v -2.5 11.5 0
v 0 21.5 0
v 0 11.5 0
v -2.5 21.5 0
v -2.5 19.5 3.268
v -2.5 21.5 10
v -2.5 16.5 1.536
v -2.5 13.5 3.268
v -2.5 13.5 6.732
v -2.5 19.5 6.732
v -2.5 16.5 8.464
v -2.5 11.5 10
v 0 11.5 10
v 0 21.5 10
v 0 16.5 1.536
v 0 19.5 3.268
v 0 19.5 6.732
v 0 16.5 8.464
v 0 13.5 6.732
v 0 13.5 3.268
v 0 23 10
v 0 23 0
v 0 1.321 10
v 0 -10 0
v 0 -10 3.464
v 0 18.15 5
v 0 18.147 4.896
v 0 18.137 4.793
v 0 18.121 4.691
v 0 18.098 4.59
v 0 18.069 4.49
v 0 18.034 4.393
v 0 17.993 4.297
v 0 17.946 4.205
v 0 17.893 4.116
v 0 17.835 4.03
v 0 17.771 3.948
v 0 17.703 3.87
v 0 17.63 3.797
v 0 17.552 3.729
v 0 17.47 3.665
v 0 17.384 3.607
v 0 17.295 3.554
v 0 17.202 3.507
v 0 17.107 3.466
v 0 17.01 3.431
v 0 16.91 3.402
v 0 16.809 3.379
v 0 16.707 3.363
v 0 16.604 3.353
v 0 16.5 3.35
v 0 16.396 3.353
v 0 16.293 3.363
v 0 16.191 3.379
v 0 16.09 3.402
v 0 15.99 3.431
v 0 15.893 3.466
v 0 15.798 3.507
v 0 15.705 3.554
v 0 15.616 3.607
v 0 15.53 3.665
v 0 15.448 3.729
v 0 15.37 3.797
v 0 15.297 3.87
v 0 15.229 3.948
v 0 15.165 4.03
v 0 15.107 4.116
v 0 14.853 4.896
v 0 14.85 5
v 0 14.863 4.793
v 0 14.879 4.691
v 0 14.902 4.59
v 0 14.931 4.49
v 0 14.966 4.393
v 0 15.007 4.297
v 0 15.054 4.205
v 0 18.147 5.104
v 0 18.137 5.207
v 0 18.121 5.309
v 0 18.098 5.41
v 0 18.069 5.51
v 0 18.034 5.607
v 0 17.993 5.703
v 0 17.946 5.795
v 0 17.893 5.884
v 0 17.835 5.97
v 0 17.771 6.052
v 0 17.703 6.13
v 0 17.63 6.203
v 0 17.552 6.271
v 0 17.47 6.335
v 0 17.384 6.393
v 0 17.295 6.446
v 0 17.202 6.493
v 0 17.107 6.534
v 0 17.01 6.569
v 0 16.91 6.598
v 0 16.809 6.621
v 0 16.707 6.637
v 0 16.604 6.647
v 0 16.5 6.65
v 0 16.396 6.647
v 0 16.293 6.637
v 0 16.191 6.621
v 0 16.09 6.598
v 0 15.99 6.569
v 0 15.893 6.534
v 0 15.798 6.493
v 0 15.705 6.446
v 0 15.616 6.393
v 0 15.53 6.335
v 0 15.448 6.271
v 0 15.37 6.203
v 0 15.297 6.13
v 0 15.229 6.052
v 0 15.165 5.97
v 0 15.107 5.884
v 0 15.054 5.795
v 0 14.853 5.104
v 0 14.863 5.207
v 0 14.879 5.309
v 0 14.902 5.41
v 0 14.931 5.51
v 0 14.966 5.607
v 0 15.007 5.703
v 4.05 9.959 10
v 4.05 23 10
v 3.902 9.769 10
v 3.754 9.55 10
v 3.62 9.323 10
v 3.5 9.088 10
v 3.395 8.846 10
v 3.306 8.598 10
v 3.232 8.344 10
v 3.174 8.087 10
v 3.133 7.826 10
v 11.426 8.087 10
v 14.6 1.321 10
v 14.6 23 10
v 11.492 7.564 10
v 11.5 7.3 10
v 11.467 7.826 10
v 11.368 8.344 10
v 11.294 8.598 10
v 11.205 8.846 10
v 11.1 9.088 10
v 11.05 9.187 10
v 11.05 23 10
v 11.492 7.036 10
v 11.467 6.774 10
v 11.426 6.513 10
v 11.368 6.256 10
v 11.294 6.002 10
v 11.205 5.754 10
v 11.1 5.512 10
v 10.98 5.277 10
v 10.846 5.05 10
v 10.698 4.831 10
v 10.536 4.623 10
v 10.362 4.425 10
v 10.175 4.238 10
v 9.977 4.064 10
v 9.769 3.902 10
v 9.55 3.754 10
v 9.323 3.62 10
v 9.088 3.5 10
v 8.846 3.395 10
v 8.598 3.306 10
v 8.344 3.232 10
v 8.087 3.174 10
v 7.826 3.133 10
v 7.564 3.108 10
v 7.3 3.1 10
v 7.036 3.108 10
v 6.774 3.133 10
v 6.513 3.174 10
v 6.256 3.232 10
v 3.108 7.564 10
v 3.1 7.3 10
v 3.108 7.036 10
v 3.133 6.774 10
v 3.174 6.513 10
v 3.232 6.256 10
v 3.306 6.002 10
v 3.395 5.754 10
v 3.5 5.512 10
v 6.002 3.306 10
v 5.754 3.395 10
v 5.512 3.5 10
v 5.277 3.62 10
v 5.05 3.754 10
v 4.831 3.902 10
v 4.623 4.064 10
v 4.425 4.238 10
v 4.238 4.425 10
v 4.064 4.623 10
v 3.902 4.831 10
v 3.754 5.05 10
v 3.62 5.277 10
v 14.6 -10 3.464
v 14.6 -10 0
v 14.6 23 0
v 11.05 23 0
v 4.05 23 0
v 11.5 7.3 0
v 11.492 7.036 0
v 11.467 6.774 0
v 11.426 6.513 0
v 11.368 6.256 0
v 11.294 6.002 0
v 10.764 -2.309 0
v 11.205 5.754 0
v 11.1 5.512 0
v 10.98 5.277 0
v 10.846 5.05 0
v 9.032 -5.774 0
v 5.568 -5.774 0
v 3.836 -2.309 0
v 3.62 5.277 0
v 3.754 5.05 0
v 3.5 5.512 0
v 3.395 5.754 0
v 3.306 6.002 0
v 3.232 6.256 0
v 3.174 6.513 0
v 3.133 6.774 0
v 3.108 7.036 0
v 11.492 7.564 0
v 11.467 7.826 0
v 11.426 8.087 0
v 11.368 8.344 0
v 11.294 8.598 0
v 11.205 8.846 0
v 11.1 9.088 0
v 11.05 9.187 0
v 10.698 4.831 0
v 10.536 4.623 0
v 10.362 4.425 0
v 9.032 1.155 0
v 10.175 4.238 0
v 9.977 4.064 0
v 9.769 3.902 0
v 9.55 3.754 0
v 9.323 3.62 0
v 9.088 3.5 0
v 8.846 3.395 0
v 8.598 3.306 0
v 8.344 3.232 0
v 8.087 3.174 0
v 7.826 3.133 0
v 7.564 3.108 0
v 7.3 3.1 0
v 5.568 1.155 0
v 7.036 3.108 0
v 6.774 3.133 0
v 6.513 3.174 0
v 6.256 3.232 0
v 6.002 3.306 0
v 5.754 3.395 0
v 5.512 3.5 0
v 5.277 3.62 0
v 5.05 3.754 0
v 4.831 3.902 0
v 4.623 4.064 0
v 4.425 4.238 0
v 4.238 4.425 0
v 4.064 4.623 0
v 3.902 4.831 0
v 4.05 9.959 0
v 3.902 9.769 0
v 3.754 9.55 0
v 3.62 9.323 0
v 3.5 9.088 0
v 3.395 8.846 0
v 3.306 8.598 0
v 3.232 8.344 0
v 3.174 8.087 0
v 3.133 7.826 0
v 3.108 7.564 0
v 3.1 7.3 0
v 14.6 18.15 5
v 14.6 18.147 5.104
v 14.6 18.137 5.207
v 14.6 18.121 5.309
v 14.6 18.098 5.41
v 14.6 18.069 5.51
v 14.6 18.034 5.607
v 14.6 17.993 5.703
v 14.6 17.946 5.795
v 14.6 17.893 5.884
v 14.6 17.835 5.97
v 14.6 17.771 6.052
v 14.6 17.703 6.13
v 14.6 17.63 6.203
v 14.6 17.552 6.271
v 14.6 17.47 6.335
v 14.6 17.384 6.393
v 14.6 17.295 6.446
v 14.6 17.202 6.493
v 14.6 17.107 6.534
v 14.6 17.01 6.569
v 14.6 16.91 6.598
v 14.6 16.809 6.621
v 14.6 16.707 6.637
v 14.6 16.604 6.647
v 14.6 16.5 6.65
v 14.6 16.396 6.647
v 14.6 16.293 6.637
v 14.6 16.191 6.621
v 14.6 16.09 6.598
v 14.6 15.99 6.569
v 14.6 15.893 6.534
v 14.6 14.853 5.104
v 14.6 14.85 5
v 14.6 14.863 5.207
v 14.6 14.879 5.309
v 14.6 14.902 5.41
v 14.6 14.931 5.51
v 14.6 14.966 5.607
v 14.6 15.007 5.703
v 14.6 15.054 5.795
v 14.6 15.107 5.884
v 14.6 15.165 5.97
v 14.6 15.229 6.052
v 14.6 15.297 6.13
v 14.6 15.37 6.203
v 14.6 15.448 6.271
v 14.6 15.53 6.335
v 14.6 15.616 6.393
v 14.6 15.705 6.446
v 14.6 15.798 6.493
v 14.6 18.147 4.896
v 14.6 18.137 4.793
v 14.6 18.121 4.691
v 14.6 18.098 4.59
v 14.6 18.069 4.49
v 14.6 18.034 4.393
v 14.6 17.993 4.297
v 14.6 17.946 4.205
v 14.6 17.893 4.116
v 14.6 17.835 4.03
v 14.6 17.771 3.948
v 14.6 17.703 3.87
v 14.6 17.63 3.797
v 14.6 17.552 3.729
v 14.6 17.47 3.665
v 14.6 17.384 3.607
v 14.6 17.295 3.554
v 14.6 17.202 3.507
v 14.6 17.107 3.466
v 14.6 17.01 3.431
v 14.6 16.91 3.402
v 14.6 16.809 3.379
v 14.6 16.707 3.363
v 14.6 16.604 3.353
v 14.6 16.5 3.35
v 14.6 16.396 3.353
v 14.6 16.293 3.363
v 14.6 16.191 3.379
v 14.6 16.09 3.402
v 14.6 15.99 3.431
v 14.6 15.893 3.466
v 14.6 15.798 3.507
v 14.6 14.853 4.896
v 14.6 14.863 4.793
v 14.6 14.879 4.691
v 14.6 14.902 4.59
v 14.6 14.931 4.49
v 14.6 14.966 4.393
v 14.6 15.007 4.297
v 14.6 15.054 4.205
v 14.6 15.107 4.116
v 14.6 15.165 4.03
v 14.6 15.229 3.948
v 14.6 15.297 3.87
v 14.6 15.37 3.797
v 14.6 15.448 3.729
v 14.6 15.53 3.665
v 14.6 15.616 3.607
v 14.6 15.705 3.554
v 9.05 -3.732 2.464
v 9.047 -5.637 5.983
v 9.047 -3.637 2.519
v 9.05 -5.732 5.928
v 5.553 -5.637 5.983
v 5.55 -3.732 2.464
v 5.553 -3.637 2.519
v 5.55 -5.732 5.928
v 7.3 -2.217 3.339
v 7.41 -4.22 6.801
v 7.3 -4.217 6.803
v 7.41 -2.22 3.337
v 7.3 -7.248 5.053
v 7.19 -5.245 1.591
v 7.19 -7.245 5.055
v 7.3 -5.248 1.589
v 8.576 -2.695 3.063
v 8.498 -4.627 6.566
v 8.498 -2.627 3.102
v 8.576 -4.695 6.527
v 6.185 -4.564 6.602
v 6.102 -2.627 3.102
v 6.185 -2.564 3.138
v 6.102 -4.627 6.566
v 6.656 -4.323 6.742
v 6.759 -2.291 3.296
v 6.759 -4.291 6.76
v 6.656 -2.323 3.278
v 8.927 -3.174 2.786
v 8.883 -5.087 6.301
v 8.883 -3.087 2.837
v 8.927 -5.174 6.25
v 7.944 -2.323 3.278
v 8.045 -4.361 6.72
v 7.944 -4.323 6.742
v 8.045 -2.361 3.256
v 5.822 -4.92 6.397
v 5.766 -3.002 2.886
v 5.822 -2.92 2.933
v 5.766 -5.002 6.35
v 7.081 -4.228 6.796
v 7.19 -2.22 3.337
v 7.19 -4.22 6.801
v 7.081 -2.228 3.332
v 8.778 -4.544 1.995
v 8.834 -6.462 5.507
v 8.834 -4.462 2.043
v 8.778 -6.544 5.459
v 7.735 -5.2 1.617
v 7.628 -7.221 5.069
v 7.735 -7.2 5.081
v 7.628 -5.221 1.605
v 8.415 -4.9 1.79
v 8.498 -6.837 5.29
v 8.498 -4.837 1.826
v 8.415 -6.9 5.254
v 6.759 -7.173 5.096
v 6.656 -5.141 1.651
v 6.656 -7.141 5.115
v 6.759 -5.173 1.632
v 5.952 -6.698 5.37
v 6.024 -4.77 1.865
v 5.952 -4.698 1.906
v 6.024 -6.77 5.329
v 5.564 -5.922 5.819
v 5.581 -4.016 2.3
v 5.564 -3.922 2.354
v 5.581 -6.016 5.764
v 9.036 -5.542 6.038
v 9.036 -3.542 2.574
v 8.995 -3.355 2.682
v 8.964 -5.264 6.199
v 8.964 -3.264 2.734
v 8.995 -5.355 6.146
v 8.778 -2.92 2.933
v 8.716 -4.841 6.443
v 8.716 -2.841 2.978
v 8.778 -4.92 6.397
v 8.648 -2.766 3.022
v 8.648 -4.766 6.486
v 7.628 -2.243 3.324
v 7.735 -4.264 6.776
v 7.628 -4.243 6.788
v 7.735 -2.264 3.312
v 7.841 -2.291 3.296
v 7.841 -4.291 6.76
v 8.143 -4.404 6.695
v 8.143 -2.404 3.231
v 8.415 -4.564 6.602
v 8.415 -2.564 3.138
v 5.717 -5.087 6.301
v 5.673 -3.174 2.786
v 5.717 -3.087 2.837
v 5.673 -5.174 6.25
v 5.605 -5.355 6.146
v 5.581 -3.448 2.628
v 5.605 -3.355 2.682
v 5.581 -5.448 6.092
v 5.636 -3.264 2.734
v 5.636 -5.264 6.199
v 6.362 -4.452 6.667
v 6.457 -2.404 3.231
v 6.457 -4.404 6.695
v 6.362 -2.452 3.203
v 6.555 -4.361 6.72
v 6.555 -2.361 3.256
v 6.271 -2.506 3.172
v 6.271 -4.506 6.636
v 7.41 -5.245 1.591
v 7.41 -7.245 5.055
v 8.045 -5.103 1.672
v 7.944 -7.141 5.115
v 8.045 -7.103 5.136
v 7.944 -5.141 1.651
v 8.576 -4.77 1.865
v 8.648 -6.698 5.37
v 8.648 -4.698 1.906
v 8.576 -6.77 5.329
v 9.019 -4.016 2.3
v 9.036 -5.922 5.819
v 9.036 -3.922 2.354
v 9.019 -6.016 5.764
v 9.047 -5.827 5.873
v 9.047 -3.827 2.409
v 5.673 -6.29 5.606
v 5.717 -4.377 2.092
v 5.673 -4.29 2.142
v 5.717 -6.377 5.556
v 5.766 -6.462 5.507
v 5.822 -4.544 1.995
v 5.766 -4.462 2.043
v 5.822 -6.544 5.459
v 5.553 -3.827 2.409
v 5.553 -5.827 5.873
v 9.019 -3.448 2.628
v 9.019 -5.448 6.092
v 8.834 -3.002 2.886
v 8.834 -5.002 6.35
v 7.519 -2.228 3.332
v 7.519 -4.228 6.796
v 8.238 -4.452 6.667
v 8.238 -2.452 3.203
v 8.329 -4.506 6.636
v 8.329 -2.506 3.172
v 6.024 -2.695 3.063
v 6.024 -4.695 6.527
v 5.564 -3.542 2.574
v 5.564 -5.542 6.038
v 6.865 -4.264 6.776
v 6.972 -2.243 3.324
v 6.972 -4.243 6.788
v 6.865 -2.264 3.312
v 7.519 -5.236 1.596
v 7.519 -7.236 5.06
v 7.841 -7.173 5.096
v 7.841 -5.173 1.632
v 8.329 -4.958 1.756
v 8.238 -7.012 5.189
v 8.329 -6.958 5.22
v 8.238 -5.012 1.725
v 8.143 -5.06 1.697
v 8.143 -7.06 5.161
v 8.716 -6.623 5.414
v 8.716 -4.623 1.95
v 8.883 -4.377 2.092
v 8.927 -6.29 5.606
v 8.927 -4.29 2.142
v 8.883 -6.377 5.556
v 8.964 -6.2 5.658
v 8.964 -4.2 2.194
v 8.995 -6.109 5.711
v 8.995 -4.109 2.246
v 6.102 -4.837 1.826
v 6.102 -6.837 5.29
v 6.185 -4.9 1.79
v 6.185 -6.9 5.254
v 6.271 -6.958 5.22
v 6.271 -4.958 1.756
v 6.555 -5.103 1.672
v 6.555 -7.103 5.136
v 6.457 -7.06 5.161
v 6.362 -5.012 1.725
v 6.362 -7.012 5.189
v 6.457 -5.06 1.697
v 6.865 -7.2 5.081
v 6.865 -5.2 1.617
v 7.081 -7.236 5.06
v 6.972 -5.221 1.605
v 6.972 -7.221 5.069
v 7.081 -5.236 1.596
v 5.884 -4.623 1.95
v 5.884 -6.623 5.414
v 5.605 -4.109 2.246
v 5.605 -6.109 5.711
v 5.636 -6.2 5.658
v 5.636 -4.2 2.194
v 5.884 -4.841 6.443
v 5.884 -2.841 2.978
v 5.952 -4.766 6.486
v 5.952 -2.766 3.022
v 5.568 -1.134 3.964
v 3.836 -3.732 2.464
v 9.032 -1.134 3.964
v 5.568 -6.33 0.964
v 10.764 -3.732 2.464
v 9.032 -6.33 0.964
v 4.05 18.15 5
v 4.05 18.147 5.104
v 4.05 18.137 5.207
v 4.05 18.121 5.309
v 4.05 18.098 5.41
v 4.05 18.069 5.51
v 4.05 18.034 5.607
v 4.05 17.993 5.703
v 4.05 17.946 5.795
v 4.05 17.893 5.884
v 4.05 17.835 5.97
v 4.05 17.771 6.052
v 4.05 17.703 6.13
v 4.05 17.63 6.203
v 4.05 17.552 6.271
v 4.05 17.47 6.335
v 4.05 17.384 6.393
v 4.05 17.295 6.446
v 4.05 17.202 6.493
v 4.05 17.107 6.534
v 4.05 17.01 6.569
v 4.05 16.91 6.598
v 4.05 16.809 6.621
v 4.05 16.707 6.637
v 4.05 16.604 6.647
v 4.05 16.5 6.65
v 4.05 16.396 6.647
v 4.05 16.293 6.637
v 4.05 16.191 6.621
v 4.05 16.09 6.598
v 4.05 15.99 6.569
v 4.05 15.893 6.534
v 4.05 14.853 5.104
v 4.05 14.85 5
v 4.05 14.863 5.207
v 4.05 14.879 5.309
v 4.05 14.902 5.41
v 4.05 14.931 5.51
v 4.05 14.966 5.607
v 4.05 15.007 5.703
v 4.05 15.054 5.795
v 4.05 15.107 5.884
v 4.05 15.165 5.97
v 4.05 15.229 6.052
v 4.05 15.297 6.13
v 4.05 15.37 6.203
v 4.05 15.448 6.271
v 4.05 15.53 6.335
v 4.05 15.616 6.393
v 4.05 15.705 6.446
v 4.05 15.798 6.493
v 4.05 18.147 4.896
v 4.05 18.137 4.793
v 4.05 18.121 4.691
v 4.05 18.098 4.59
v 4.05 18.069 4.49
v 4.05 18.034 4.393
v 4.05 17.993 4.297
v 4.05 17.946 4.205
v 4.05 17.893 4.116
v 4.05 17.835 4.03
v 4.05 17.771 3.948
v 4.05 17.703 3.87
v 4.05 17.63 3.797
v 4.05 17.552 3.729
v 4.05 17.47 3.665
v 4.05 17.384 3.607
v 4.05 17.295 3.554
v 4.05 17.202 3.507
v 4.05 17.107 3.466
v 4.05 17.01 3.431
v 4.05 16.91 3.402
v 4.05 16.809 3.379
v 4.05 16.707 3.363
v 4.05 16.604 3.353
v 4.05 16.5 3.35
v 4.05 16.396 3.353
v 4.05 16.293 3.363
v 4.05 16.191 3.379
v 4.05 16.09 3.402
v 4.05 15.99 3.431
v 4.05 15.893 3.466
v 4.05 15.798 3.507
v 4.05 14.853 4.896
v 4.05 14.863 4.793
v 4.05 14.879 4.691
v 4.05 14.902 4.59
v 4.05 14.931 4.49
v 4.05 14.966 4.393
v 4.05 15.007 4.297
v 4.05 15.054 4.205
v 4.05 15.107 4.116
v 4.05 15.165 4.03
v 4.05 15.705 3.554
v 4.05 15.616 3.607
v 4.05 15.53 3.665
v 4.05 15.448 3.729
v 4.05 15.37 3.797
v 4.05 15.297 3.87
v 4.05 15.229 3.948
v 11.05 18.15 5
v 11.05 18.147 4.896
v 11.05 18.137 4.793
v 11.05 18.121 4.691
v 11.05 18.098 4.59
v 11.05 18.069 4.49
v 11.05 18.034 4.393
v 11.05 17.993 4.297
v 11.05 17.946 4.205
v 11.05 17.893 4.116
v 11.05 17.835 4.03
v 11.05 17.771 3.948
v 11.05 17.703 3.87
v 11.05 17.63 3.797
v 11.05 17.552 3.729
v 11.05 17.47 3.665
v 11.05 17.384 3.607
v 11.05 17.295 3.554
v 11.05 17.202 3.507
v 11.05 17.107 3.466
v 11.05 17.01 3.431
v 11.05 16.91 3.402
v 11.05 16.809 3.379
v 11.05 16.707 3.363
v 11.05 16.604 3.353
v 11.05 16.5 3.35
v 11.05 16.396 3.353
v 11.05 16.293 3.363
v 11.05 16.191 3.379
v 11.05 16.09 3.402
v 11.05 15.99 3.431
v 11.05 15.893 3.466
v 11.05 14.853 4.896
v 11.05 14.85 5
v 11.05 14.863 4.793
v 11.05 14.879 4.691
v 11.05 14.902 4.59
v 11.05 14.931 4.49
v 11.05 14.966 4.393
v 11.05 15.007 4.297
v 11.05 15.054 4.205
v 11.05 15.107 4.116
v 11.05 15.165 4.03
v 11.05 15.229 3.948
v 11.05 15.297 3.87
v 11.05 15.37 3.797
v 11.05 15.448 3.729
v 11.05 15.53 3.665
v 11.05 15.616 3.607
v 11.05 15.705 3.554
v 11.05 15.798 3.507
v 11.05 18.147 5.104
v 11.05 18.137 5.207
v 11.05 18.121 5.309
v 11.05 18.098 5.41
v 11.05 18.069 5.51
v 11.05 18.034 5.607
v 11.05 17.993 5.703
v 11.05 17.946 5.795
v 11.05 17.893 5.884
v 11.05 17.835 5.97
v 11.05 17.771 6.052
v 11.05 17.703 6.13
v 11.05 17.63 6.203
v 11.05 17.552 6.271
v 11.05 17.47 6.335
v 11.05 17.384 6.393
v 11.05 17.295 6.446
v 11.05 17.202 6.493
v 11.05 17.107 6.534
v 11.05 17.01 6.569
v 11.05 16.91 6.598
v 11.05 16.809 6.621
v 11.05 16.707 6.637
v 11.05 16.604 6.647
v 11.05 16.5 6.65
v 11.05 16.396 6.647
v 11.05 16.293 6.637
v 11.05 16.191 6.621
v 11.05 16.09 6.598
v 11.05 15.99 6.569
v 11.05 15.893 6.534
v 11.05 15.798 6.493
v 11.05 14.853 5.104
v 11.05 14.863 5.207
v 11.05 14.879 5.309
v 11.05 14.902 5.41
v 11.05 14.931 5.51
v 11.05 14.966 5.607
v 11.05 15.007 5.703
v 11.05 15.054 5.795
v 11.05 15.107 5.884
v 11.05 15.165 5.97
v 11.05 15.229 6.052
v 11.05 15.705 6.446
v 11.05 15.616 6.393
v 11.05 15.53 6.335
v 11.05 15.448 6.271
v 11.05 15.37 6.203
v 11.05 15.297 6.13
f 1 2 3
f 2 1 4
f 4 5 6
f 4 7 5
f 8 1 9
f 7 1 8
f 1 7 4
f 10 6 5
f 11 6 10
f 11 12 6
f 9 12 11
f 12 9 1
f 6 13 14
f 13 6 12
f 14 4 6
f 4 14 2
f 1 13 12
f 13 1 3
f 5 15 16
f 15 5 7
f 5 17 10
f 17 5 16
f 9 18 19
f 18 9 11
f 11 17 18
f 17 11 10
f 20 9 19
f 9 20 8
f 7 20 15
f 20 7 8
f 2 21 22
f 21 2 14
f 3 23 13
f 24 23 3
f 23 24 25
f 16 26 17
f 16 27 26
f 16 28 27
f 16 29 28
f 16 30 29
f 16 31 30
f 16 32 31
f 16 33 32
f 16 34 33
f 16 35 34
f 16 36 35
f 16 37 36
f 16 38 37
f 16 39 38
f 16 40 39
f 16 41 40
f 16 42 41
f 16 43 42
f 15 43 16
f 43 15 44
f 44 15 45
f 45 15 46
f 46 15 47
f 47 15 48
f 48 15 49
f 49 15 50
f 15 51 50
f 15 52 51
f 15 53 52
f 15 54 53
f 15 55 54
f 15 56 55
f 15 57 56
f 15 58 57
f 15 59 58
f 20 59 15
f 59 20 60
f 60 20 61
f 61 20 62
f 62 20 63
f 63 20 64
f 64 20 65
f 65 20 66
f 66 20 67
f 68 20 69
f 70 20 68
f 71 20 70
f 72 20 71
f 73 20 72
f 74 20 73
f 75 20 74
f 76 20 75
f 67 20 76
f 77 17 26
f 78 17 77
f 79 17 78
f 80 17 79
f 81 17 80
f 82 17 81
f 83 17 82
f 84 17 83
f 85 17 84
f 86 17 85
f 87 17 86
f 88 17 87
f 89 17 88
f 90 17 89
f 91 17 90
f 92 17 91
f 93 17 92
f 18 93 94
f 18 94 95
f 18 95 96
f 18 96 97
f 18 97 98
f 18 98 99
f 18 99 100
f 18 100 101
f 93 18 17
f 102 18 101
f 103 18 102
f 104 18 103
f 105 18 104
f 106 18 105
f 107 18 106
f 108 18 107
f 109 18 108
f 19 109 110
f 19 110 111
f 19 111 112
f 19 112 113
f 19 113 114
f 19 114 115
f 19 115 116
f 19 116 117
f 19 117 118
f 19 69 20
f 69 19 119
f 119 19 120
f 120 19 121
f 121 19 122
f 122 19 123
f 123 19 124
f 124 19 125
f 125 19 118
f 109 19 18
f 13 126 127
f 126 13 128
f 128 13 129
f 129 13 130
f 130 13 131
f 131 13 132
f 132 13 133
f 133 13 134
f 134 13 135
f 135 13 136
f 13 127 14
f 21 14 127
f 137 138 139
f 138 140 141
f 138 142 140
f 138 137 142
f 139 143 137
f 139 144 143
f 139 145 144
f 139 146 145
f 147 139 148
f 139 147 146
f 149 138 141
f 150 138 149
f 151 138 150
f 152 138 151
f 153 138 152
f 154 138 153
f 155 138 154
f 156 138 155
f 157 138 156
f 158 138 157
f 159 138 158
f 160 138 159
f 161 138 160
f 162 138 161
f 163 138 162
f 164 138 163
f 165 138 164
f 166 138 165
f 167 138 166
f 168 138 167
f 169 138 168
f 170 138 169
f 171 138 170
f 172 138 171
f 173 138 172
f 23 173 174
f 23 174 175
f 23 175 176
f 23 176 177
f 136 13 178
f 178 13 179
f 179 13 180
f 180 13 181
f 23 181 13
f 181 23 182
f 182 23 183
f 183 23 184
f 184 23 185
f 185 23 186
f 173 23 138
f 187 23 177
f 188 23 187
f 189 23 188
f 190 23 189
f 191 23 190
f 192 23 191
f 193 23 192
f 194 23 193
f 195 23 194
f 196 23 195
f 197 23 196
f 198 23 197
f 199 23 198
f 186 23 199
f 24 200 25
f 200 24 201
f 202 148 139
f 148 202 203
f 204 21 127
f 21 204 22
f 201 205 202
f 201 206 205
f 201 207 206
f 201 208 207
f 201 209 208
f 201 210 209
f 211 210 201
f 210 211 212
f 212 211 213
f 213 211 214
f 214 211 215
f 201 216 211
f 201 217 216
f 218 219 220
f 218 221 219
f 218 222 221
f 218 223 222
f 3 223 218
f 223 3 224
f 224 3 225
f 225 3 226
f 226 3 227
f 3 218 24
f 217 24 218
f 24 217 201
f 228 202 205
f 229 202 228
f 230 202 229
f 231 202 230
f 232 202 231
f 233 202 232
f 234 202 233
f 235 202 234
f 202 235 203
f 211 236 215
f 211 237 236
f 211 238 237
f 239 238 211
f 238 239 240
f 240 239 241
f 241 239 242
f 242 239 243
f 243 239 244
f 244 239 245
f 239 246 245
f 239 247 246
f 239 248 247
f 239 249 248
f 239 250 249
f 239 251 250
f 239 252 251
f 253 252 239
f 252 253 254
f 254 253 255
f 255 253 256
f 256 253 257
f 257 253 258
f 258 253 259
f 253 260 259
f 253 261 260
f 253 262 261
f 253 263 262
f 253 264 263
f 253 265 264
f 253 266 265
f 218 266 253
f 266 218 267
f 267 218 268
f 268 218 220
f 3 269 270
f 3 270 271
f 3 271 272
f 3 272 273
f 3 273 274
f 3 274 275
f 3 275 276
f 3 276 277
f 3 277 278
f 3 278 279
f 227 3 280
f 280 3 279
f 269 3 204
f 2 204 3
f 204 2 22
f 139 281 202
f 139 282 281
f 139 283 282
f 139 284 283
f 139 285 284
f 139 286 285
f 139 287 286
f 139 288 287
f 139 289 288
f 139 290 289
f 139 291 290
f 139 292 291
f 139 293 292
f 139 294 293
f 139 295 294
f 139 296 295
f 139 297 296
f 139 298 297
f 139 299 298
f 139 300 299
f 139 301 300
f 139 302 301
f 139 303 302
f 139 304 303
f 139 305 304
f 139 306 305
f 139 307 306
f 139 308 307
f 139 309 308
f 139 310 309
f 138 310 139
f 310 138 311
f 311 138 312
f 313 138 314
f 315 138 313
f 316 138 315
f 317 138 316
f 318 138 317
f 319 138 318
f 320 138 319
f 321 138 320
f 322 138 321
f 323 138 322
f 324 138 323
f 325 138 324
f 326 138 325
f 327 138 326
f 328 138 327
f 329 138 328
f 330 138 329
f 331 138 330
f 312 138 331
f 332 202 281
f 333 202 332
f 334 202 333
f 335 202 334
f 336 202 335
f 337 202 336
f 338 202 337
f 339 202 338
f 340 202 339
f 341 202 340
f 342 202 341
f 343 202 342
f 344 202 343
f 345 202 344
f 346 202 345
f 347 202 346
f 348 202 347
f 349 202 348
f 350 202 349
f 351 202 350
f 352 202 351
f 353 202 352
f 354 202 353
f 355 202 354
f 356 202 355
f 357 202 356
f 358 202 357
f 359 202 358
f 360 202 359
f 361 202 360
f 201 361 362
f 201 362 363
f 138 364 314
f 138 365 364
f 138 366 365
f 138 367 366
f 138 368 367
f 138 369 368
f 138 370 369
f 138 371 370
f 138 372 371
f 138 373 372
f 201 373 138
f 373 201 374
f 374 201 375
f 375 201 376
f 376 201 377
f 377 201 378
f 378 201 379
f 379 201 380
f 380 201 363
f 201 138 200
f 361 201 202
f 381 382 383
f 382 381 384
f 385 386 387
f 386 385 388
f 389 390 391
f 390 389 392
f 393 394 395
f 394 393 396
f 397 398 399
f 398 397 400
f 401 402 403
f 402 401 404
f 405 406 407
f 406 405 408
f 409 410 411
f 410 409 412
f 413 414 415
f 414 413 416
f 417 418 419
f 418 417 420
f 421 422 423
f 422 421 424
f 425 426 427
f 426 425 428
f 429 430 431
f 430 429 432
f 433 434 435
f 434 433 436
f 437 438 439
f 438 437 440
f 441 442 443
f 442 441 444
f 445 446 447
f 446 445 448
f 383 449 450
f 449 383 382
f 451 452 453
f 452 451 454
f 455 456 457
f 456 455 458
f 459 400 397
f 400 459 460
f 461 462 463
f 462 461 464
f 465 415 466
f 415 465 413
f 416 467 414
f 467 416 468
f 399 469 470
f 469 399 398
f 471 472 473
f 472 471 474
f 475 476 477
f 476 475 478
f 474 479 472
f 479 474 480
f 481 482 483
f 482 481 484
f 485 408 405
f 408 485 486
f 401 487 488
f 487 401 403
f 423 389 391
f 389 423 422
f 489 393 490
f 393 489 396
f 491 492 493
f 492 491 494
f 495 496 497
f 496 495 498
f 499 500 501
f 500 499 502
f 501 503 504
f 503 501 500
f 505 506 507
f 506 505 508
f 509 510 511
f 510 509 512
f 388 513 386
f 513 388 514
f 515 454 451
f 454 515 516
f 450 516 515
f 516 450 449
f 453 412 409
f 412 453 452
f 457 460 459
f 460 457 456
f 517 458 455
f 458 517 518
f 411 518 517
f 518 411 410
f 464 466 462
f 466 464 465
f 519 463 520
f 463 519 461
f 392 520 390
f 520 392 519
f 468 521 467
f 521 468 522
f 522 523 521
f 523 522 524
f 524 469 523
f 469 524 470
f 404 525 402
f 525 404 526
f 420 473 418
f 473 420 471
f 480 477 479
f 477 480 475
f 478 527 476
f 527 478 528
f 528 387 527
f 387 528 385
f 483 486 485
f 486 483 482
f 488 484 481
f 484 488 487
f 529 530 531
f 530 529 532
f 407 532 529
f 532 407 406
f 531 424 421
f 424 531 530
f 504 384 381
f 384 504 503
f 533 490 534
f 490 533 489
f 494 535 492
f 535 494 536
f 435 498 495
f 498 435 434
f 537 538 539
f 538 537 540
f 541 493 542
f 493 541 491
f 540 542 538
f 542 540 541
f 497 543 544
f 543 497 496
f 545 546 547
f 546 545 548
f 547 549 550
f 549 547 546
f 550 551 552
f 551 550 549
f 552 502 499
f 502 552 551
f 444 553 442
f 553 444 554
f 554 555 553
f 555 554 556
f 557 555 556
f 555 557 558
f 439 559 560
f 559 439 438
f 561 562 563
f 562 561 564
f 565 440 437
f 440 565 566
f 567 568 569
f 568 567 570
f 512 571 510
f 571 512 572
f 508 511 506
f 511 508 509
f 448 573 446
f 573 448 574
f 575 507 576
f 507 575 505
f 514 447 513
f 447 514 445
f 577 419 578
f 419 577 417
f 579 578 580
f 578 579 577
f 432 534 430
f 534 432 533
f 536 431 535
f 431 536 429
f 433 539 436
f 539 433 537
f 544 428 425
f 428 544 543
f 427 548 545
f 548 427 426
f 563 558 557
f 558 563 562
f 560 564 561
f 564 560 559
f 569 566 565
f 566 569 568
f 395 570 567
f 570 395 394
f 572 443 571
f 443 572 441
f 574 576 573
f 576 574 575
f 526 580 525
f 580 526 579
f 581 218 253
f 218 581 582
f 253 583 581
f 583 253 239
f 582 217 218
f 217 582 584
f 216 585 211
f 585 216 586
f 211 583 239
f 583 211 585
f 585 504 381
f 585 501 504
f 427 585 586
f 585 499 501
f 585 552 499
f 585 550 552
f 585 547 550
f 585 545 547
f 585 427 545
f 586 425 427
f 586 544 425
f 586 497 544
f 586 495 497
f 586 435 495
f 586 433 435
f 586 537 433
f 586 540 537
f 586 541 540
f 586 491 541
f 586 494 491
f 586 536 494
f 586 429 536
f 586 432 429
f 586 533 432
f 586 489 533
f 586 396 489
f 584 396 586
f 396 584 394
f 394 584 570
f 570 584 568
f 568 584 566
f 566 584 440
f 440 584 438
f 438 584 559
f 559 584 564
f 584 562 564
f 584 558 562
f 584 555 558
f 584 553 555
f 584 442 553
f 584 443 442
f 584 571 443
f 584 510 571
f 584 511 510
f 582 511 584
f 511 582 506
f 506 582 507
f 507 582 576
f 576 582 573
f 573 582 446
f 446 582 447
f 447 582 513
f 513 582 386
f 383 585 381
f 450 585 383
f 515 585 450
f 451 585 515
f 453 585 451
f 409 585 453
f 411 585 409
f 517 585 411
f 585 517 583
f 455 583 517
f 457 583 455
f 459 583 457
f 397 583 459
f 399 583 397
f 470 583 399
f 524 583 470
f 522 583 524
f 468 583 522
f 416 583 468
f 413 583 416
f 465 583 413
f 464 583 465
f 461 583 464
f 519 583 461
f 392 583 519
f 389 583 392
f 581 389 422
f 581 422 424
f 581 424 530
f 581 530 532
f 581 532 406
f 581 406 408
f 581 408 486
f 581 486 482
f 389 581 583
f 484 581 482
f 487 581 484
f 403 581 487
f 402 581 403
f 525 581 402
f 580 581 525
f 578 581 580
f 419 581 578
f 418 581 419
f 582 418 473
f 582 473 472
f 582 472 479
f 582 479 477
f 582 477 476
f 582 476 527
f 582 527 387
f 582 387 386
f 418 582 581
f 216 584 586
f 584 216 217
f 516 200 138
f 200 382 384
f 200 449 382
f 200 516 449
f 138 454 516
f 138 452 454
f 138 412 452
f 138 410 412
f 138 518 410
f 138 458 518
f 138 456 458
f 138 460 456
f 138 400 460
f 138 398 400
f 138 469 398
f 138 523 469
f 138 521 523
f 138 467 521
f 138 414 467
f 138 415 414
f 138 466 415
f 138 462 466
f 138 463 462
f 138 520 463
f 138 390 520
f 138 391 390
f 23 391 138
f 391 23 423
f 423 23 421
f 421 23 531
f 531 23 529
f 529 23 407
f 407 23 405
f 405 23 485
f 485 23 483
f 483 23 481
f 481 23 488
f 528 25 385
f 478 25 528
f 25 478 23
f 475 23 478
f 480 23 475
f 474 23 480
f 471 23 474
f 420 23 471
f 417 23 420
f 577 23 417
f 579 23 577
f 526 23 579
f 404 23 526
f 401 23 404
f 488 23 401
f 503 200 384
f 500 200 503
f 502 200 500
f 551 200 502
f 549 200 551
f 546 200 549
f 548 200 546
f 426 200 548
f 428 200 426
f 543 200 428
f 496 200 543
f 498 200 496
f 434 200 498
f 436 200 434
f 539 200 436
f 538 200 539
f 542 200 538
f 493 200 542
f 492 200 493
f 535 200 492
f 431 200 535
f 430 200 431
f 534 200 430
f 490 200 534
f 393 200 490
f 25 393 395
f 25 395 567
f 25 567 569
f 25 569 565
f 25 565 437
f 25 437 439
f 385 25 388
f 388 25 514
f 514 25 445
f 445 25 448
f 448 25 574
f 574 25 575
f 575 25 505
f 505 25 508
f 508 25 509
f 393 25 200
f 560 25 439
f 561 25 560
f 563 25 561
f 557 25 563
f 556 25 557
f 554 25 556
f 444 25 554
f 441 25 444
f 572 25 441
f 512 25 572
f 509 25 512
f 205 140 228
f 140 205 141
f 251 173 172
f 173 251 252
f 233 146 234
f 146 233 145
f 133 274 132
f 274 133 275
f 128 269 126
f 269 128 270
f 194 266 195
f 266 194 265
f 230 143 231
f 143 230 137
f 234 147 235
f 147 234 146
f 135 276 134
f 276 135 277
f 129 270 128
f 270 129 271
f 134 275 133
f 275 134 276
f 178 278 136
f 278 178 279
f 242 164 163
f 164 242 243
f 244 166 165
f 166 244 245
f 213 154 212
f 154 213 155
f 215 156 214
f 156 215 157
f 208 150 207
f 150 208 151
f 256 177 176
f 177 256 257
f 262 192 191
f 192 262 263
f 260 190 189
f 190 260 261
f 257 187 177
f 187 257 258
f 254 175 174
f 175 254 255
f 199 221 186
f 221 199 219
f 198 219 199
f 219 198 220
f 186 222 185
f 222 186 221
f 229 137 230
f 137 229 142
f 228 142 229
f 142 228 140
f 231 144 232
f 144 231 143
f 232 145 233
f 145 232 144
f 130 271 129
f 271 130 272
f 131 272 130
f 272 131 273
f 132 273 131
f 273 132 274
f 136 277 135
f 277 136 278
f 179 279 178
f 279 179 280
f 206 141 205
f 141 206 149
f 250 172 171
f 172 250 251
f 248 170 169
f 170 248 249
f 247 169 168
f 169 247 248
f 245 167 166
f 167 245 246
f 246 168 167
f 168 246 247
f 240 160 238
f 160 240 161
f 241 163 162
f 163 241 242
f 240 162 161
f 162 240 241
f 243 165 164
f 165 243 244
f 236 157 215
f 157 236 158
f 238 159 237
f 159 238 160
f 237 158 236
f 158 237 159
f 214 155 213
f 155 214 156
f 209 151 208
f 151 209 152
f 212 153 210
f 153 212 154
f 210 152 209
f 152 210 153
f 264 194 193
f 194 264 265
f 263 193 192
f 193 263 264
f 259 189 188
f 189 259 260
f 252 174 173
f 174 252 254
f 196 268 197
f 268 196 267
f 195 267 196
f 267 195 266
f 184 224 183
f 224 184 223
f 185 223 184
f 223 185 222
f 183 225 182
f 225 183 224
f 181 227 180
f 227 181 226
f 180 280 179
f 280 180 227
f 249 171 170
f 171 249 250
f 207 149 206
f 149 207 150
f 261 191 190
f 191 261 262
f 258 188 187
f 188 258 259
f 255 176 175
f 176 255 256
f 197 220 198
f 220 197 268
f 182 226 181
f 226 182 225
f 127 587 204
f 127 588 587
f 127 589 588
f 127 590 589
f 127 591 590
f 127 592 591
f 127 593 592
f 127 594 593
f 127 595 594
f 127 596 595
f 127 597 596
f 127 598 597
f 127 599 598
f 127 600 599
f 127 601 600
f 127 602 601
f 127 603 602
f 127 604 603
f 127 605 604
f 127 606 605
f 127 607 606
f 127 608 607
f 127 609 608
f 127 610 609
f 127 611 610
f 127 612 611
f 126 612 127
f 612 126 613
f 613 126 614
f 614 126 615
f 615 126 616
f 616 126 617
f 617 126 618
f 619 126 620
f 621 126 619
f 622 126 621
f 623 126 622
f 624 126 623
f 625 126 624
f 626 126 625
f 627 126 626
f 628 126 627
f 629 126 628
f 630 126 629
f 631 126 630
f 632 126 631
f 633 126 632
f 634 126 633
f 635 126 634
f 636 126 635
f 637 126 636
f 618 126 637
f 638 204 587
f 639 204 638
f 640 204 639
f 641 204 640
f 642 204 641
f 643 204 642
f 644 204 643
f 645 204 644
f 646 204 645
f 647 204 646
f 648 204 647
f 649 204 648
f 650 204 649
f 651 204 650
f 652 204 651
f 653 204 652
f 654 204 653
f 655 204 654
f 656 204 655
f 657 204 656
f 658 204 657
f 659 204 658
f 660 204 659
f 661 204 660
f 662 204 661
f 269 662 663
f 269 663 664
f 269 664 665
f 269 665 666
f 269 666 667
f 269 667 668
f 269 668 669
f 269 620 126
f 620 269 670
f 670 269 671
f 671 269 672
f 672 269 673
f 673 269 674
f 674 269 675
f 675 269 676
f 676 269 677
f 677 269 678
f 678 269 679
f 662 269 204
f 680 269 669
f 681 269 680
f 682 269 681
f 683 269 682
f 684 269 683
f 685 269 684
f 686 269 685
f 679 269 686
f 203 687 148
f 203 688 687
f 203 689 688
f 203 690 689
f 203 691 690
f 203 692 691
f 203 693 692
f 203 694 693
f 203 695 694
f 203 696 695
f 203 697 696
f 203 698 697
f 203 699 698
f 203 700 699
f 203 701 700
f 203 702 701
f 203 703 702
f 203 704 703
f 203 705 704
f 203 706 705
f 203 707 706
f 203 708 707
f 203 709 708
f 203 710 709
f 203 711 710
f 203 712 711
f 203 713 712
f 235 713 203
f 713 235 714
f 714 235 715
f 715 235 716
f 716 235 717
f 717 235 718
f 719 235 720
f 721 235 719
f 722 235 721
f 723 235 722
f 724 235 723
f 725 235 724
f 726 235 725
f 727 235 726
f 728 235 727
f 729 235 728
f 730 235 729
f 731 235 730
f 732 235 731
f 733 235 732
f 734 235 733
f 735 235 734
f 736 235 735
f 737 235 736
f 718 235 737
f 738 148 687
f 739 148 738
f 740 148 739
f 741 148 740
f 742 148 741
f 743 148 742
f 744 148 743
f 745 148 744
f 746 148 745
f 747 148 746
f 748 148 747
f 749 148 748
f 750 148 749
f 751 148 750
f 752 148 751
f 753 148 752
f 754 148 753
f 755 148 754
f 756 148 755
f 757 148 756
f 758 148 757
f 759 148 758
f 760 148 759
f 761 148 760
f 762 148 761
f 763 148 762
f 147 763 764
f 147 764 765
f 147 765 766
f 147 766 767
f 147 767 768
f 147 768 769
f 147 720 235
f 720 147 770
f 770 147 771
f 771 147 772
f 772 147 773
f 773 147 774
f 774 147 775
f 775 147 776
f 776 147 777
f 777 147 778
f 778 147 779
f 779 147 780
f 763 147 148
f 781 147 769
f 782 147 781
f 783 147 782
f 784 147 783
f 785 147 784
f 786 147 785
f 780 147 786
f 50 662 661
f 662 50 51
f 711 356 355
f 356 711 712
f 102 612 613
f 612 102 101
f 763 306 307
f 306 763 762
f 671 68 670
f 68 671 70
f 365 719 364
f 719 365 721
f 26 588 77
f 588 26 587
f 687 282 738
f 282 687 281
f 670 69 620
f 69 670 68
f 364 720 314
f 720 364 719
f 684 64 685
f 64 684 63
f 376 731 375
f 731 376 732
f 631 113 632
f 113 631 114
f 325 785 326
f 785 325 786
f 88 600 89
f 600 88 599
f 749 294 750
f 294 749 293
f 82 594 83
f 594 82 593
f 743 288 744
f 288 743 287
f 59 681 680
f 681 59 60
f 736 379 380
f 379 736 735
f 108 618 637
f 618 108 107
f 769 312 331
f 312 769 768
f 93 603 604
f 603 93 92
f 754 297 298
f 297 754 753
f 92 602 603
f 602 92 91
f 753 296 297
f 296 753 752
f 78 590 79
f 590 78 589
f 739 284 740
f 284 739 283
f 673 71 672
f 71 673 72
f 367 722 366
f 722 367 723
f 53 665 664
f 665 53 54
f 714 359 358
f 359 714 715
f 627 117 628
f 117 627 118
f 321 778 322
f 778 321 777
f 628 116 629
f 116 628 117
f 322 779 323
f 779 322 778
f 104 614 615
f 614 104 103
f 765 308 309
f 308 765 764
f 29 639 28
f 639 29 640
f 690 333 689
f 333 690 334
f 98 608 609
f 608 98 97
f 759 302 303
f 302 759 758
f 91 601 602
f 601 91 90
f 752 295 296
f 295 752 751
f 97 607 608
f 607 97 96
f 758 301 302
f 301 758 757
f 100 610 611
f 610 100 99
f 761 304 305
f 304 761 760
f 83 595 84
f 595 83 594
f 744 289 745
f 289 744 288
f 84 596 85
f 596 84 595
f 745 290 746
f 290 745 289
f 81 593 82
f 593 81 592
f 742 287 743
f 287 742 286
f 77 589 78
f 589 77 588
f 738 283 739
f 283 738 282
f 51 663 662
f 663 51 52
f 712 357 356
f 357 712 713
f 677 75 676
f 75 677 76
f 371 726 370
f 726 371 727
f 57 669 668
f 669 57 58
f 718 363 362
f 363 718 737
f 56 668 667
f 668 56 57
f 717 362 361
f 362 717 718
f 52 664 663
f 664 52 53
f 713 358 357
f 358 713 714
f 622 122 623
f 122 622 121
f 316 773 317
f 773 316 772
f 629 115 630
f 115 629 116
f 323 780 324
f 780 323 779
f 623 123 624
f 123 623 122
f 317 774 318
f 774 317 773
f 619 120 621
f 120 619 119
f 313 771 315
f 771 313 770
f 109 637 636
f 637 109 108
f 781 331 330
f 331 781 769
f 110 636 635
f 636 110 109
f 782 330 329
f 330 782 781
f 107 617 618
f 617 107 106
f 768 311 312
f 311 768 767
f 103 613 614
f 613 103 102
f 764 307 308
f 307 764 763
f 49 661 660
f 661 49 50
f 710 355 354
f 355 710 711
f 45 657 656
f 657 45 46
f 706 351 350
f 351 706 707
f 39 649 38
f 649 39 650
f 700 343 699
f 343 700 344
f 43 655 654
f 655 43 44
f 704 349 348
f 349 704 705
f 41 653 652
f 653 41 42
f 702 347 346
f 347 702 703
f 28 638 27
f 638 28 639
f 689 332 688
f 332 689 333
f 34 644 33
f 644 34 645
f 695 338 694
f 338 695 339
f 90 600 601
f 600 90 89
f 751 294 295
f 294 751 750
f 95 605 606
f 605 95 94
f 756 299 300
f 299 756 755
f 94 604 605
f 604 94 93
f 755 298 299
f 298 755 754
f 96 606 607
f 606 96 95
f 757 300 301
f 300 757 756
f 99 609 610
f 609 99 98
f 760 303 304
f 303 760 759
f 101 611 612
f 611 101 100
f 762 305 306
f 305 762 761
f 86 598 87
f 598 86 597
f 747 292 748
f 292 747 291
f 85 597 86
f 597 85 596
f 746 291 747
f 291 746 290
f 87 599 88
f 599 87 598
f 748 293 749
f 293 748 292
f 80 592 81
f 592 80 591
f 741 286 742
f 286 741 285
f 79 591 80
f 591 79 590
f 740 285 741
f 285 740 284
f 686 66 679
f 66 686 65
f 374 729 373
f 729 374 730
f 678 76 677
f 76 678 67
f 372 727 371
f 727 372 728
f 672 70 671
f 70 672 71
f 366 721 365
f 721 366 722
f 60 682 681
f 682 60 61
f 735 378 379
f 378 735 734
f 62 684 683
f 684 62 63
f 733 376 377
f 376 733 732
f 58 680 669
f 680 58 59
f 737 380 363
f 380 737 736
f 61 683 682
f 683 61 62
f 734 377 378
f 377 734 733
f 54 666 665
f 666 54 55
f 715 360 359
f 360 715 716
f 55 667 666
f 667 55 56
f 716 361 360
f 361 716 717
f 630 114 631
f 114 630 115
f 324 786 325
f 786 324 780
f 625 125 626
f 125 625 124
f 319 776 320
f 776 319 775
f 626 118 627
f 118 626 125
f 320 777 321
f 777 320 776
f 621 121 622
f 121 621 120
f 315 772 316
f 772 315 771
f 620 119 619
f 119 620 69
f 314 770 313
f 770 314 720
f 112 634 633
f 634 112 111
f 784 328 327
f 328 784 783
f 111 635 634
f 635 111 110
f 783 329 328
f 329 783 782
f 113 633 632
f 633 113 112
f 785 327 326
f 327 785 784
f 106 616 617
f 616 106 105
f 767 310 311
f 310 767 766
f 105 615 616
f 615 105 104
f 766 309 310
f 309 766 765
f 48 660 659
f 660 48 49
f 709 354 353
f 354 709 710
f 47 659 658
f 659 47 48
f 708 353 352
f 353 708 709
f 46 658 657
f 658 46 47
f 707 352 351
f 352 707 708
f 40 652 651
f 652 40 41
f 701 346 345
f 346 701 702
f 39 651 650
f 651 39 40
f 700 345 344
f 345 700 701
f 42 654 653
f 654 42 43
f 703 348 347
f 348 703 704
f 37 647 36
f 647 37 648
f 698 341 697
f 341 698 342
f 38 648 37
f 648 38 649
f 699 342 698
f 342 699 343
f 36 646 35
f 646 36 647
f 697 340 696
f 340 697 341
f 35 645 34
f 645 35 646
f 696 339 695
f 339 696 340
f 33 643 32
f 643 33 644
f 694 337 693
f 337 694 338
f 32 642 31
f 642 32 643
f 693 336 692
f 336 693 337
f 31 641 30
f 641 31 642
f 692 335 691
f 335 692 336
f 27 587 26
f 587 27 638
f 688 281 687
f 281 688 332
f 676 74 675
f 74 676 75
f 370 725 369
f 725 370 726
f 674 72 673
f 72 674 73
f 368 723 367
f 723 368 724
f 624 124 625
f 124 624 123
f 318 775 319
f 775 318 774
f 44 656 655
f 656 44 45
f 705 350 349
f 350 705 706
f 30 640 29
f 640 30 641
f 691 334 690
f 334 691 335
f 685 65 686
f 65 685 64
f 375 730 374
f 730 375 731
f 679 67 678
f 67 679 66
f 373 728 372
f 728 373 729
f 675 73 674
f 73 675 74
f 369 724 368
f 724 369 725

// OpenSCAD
$fn = 100;

module CameraArmFrameMount() {
    difference(){
        // Main body
        union(){
            hull() {
                translate([0, -10, 0]){
                    cube([14.6, 33, 10]);
                }
            }
            
            translate([0, 11.5, 0]){
                rotate([0, -90, 0]){
                    M3NutSocket();
                }
            }
        }
        
        // Rod hole
        translate([7.3, 7.3, -1]){
            cylinder(r = 4.2, h = 12);
        }
        
        // Gap for mounting
        translate([4.05, 7.3, -1 ]){
            cube([7, 20, 12]);
        }
        
        // Screw clamp hole
        translate([-1, 16.5, 5]){
            rotate([0, 90, 0]){
                cylinder(r = 1.65, h = 16.6);
            }
        }
        
        // 30 degree angle arm mount
        rotate([30, 0, 0]){
            translate([-5, -10, 8]){
                cube([20, 20, 20]);
            }
            translate([7.3, -2, 0]){
                cylinder(r = 1.75, h = 20);
                translate([-1.73205, -3, -6]){
                    M3Nut();
                }
            }
        }
    }
}

module M3NutSocket(){
    difference(){
        cube([10, 10, 2.5]);
        translate([3.26795, 2, 0]){
            M3Nut();
        }
    }
}

module M3Nut(){
    linear_extrude(height = 10, convexity = 10){
        polygon([[0,6],[3.4641,6],[5.19615,3],[3.4641,0],[0,0],[-1.73205,3]]);
    }
}

CameraArmFrameMount();
